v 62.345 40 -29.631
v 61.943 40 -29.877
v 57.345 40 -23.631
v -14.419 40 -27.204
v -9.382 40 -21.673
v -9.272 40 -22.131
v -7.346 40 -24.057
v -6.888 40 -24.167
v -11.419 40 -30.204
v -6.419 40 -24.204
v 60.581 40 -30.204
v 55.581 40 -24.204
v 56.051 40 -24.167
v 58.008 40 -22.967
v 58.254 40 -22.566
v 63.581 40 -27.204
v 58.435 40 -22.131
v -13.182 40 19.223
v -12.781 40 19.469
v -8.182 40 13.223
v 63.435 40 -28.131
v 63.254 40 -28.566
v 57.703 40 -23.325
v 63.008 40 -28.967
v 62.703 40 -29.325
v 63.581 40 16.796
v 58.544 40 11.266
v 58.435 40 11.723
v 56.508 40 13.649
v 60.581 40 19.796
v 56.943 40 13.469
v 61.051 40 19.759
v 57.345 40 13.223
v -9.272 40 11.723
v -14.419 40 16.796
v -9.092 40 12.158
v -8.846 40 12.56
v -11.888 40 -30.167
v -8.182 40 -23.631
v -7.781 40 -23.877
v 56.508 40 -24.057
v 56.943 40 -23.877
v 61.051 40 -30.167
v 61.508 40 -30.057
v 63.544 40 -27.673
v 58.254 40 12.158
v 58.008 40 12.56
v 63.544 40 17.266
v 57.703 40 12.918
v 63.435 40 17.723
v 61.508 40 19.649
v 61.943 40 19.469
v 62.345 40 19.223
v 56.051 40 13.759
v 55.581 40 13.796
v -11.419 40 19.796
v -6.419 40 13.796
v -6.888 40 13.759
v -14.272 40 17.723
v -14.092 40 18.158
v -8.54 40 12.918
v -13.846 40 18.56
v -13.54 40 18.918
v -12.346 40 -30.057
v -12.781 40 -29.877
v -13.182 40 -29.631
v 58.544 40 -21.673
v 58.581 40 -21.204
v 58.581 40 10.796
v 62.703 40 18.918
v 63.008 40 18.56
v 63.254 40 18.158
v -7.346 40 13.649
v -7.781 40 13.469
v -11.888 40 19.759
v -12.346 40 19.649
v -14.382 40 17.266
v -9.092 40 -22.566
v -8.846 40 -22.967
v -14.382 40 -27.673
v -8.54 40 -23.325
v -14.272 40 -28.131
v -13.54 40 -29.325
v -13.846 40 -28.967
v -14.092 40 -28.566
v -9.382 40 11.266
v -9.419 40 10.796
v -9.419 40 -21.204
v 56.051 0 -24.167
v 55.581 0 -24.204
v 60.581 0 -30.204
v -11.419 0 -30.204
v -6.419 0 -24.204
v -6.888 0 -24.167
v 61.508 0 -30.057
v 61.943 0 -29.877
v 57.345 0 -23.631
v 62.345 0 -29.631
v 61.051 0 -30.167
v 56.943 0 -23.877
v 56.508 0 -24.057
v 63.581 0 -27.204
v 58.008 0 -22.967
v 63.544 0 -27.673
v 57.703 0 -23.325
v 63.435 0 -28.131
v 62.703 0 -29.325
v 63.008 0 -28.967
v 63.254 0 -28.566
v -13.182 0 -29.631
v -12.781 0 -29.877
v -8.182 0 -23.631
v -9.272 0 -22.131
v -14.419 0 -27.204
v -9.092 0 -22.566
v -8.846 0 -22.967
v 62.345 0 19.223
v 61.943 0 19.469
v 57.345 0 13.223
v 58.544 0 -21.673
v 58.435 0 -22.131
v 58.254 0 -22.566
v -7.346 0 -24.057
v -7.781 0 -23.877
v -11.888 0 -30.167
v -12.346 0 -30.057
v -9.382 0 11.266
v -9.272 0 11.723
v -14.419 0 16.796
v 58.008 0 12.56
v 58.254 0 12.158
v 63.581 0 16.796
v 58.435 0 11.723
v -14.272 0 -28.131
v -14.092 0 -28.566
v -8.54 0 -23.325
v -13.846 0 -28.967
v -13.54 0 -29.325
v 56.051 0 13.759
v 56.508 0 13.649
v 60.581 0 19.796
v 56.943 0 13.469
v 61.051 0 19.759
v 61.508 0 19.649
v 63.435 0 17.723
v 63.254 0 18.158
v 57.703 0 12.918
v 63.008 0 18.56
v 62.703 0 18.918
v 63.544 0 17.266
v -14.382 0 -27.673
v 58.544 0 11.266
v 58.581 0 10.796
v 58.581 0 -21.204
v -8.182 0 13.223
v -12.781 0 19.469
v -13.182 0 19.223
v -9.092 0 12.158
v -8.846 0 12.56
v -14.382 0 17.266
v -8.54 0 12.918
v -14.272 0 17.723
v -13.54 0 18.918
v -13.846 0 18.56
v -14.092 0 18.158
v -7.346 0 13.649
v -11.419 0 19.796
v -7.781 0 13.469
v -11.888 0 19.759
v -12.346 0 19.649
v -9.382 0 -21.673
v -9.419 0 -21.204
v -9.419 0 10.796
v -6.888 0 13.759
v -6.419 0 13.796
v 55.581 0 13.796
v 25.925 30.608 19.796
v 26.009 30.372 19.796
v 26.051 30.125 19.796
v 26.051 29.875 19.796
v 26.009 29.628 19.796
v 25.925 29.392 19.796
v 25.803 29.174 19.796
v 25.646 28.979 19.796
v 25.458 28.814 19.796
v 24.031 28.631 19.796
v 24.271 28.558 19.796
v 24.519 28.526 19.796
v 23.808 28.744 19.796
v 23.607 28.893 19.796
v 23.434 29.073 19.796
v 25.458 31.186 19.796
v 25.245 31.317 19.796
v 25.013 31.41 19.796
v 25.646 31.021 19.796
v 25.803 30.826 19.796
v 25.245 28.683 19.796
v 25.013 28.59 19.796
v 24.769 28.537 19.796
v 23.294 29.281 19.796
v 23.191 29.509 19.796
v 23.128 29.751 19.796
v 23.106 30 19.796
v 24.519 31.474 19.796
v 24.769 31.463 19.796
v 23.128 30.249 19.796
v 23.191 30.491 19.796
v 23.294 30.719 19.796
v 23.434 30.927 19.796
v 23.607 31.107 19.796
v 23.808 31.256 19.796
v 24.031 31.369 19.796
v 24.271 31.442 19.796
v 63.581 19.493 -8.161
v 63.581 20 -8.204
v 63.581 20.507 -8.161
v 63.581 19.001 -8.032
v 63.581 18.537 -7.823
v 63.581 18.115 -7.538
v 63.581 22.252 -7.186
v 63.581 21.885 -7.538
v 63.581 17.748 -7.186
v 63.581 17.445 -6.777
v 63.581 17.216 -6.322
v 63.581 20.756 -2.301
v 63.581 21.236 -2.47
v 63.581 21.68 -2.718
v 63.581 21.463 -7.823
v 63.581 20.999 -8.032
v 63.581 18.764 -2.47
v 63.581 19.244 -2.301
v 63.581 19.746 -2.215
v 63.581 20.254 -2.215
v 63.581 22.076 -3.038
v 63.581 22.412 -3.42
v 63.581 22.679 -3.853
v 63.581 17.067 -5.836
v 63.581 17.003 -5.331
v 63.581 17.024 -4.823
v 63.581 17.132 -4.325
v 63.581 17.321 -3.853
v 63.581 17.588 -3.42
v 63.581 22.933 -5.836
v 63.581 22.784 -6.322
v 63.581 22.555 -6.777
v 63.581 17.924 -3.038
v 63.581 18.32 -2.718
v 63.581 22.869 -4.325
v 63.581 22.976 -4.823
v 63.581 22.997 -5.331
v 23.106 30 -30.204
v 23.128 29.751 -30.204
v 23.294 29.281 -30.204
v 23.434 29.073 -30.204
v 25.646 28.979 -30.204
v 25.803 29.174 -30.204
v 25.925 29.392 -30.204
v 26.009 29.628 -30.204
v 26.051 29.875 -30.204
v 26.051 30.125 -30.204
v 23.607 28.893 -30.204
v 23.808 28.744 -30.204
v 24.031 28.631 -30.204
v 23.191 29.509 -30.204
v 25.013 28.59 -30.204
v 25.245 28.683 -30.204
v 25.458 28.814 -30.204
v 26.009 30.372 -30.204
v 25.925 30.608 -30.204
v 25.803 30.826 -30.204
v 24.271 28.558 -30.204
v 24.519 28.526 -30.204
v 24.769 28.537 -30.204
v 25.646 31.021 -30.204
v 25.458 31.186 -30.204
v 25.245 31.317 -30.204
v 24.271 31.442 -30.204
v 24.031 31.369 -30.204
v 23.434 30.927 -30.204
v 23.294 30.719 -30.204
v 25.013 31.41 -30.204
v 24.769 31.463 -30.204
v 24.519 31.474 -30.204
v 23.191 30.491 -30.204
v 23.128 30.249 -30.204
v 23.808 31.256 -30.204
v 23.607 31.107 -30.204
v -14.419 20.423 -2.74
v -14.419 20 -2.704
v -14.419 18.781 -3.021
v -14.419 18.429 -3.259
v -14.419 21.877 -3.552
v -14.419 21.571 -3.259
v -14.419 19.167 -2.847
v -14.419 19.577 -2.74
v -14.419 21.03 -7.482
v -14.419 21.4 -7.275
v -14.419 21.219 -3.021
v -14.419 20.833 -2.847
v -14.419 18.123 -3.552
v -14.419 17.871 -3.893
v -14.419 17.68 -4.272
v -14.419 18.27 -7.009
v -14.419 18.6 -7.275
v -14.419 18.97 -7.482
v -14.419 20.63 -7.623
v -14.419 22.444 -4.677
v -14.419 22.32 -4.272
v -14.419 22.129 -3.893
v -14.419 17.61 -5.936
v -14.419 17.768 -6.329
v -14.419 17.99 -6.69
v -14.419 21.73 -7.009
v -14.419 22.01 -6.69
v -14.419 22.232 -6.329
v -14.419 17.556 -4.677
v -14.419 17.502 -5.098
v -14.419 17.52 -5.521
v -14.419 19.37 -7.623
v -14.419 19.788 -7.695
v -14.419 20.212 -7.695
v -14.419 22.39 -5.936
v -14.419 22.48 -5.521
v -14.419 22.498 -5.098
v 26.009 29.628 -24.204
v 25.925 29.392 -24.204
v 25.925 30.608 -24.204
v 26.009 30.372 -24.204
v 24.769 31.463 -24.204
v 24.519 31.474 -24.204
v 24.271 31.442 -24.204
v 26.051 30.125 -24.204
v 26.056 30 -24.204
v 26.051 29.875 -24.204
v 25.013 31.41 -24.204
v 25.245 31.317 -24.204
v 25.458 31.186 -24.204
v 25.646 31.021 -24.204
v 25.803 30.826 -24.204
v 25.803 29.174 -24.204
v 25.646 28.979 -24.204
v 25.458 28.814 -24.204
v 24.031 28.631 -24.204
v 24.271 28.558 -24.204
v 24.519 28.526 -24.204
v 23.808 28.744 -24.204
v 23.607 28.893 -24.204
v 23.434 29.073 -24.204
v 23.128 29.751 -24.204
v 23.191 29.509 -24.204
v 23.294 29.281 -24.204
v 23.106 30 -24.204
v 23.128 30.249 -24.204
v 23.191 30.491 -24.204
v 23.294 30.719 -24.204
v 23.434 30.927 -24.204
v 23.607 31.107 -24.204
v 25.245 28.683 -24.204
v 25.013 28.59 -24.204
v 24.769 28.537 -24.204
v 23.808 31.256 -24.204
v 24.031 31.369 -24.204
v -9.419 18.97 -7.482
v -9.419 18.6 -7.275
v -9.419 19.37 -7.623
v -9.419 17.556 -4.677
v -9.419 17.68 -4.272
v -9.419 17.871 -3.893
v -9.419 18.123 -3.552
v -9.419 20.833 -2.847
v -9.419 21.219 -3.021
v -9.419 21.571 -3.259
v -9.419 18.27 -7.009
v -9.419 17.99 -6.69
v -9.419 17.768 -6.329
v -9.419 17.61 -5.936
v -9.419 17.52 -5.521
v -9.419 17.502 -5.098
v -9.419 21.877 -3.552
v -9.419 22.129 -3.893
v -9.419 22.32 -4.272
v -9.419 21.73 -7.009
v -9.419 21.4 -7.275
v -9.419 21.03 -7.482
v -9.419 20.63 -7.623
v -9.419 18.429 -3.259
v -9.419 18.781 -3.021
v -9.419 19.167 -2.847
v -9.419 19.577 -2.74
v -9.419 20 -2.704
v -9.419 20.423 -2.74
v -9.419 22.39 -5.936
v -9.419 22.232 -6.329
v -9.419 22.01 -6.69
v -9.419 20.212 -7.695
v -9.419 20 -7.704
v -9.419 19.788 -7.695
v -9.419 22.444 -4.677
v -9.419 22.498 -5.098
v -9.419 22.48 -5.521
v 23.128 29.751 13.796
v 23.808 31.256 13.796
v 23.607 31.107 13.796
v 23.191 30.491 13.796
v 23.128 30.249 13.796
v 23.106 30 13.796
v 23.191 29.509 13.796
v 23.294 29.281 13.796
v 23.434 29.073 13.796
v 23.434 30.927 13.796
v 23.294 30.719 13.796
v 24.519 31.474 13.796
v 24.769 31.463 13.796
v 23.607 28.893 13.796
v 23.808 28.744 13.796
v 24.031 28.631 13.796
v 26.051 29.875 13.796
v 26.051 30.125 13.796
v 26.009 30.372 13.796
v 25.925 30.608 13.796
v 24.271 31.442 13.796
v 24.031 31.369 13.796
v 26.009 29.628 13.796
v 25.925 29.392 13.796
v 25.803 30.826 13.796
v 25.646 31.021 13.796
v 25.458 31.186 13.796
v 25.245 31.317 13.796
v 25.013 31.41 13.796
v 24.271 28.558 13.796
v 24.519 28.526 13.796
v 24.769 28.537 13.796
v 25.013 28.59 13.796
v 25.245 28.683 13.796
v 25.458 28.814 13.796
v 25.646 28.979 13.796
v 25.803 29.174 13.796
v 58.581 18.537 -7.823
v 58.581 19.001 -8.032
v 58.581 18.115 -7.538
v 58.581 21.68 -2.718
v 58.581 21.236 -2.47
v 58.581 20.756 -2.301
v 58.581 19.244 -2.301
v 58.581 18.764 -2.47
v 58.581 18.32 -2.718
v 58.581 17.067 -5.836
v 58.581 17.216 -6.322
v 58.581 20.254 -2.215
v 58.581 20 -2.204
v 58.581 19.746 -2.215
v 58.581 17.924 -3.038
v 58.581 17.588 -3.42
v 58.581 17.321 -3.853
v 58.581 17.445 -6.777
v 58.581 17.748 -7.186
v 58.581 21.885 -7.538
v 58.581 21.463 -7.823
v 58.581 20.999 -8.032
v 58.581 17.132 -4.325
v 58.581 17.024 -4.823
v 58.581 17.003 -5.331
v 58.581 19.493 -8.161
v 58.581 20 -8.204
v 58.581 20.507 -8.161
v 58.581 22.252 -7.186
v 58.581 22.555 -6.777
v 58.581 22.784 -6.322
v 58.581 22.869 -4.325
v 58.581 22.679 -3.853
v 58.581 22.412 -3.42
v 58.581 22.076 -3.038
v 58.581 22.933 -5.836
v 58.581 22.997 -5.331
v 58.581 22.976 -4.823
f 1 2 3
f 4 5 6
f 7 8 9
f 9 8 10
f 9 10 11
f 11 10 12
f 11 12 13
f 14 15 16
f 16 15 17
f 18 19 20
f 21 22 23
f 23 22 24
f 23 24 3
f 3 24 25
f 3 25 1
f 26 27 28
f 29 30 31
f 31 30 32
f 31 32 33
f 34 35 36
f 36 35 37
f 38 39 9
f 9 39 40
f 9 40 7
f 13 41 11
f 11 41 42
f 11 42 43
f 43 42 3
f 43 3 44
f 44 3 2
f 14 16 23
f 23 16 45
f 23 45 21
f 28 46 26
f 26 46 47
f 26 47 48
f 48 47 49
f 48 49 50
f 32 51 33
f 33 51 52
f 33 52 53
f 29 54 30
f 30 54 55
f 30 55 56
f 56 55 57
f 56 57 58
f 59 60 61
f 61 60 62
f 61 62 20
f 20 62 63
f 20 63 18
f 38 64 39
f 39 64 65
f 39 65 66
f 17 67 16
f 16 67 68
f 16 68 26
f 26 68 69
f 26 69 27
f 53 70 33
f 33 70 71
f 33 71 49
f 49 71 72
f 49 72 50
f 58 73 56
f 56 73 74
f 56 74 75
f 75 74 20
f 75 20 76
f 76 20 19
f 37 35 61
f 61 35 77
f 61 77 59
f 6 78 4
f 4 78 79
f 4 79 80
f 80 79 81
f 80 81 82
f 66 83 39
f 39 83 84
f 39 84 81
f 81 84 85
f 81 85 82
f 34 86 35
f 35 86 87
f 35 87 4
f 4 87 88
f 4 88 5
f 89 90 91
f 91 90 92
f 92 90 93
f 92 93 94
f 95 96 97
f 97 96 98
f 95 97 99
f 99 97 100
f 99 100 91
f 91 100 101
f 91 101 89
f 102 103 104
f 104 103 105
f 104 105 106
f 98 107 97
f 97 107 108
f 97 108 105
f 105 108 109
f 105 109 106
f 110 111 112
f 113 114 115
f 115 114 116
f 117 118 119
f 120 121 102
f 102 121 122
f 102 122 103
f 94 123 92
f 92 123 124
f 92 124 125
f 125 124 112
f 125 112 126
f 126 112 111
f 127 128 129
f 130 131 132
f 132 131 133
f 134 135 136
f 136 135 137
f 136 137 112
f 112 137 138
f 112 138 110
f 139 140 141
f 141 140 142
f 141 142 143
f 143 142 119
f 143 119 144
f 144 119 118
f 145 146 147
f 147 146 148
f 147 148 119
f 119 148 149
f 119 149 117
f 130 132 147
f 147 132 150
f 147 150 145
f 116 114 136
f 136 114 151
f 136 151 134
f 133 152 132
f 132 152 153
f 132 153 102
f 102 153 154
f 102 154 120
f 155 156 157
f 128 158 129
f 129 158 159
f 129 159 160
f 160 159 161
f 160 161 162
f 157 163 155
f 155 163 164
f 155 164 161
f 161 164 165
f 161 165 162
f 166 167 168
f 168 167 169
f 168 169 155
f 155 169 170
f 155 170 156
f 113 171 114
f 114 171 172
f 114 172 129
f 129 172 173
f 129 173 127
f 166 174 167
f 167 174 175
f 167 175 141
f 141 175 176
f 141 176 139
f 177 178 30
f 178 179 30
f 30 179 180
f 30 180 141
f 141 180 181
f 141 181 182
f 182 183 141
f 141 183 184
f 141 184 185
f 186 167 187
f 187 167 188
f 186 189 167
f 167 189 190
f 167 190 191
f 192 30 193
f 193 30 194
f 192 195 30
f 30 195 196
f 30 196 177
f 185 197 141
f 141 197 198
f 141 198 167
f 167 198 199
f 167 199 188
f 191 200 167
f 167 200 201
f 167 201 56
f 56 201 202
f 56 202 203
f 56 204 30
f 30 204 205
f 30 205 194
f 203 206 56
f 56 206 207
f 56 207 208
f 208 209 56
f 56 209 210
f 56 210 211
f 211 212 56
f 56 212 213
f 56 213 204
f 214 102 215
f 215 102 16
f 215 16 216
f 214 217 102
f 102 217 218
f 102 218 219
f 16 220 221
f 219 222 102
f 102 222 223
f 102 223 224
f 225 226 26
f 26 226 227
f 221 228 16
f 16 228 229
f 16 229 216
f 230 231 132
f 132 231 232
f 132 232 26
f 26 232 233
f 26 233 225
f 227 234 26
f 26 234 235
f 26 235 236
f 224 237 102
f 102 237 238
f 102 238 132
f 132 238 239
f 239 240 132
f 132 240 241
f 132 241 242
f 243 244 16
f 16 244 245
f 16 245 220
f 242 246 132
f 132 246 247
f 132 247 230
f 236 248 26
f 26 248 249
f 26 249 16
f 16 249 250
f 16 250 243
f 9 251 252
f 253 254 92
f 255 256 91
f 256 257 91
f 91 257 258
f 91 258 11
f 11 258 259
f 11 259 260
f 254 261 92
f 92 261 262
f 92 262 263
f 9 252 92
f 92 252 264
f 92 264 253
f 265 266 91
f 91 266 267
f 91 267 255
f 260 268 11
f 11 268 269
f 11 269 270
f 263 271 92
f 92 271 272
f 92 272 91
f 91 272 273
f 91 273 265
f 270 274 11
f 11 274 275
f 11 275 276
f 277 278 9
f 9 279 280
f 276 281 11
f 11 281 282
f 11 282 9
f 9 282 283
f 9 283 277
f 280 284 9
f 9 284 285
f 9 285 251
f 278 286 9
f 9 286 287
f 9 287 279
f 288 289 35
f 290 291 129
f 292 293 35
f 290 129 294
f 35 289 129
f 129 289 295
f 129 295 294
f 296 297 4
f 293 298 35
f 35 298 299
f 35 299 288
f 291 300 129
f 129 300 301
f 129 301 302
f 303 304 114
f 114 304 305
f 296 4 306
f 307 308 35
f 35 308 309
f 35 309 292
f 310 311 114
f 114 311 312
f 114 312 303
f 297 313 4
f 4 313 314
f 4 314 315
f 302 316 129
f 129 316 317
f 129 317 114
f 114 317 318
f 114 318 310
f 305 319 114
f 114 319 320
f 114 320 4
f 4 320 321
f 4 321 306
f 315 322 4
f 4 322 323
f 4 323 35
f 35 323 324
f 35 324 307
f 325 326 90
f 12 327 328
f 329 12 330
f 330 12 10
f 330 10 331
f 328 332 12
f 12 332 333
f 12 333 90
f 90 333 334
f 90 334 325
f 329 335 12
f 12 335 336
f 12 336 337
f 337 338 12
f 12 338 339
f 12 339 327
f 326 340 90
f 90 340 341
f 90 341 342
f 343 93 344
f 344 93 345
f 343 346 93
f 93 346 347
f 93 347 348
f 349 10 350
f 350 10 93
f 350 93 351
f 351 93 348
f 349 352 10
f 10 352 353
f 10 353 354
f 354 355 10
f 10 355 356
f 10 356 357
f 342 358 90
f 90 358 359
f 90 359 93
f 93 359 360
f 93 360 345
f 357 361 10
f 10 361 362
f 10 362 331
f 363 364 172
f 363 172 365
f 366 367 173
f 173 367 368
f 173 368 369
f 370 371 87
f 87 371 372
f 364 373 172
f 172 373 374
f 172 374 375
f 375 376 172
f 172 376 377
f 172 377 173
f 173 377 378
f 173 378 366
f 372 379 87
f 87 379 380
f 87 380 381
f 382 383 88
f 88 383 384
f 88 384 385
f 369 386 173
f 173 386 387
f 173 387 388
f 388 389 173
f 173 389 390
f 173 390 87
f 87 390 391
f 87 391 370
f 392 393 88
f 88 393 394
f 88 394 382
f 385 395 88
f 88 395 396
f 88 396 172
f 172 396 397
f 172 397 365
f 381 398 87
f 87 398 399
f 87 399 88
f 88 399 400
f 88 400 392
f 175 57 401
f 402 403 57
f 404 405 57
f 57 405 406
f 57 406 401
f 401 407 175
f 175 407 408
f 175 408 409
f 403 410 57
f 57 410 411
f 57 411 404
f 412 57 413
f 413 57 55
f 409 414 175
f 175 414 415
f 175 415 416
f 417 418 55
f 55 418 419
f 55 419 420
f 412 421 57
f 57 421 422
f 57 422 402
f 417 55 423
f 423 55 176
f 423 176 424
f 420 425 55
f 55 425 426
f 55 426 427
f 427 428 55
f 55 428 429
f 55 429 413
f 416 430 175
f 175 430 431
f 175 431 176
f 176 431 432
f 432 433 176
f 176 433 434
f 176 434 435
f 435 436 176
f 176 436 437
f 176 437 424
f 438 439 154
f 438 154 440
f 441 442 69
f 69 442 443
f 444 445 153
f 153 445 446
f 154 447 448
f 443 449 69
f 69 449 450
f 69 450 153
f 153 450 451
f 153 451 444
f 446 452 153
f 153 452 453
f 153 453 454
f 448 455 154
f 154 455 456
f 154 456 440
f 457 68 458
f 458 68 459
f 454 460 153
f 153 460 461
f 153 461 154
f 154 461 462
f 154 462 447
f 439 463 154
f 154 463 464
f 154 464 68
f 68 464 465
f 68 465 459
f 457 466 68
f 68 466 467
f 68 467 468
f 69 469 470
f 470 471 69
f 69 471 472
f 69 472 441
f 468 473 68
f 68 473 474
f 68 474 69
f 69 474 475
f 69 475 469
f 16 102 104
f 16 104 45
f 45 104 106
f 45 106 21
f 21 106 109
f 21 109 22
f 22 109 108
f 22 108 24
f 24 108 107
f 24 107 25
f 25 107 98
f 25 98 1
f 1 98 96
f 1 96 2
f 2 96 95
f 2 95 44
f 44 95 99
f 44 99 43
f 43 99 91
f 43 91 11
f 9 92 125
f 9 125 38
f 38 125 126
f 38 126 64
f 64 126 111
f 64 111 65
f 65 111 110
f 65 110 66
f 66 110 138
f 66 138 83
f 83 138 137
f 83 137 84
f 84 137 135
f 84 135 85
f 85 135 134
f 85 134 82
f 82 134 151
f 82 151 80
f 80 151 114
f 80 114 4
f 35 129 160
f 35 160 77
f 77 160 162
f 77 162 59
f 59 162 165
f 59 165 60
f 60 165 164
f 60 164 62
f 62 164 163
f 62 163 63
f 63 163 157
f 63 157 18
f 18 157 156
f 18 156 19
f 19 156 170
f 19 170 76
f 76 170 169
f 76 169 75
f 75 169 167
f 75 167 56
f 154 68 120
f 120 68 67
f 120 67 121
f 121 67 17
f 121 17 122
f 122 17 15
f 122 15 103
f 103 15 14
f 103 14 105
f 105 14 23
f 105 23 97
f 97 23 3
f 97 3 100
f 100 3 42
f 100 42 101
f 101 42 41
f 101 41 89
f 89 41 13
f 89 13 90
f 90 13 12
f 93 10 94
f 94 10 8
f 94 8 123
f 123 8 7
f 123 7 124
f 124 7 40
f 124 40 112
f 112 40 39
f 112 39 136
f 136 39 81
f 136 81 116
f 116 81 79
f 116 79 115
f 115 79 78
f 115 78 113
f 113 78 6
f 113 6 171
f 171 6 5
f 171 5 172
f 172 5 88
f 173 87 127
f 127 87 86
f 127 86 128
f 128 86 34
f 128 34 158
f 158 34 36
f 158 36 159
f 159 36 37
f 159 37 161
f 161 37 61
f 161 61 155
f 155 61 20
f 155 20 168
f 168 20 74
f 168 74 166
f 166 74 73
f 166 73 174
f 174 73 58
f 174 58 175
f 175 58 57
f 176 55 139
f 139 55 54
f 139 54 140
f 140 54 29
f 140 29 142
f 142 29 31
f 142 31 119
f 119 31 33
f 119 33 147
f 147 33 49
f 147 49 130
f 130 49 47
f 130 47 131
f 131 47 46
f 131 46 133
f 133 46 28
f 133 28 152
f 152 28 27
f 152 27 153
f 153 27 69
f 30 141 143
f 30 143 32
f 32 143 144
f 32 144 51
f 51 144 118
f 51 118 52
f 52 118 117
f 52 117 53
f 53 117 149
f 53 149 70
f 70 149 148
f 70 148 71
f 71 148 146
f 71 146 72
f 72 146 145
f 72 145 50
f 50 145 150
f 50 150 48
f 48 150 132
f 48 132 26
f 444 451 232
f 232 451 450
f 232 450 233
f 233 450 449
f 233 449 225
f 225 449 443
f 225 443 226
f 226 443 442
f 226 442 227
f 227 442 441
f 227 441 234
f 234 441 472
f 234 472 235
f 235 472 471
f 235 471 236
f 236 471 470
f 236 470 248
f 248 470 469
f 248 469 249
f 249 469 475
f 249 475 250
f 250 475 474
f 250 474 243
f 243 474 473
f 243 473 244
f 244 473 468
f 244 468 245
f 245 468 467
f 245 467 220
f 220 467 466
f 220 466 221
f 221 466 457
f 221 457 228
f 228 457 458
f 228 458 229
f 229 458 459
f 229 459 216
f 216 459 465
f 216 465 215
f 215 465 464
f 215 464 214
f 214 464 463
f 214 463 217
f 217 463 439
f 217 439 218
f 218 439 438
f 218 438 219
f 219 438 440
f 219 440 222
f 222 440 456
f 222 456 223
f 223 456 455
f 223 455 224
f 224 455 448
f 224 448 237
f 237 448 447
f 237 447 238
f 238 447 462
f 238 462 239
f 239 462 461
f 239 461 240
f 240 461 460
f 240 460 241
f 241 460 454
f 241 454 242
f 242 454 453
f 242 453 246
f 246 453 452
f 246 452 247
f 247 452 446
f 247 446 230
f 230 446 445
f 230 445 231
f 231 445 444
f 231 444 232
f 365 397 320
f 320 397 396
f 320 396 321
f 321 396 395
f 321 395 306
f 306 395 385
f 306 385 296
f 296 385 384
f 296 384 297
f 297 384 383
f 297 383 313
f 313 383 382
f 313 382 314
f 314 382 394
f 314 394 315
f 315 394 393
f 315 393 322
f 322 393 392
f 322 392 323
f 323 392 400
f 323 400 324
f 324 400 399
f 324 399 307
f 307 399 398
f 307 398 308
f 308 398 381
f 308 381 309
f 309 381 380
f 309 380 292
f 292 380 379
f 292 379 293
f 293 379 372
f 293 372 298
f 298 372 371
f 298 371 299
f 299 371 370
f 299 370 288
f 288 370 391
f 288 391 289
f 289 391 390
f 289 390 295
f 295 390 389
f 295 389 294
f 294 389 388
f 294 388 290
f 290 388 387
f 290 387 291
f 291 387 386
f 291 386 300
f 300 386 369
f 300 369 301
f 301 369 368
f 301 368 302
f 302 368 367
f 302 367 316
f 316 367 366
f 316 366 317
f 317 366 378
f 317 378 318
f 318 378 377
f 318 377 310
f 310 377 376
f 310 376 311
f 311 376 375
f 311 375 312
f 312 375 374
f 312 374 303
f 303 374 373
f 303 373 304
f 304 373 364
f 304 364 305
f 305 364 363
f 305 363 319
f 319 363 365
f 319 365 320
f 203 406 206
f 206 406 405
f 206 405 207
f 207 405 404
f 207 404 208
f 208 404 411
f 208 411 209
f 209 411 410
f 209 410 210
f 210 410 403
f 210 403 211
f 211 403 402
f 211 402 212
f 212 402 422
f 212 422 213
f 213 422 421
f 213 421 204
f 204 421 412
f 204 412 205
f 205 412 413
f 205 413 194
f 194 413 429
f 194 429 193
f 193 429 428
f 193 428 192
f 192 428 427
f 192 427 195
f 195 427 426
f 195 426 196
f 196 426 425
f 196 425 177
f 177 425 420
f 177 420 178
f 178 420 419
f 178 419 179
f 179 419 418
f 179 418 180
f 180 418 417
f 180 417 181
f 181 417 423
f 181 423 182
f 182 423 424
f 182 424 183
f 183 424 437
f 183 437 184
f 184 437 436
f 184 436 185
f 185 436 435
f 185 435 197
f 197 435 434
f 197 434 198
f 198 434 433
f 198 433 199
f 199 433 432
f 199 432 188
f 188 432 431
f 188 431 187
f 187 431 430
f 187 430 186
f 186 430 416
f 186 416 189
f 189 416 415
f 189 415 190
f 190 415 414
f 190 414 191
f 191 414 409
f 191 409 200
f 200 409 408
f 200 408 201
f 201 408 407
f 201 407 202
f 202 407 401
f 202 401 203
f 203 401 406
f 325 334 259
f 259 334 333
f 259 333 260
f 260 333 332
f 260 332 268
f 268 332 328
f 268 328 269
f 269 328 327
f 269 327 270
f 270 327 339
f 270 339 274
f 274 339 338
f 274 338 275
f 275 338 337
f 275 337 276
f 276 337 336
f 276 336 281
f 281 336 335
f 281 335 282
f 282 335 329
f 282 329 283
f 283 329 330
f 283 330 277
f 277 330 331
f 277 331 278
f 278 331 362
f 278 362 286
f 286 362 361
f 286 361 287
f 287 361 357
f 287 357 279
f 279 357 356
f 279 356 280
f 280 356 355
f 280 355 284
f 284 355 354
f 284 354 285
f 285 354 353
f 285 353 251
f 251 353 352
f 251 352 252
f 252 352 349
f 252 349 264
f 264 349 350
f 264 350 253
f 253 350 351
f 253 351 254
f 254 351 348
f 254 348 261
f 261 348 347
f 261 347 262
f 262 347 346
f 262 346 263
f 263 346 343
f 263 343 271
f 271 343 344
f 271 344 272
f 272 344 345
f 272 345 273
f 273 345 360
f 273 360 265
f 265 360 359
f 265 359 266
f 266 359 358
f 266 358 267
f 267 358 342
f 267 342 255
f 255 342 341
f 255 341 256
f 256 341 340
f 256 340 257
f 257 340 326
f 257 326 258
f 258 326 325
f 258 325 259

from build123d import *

# Parameters (mm, degrees)
SKETCH1_W           = 78
SKETCH1_H           = 50
SKETCH1_W_2         = 68
SKETCH1_H_2         = 38
BOSS_EXTRUDE1_DEPTH = 40
FILLET1_R           = 3
SKETCH2_R           = 3
CUT_EXTRUDE1_DEPTH  = 40
SKETCH3_R           = 2.5
CUT_EXTRUDE2_DEPTH  = 40
SKETCH4_R           = 1.475
CUT_EXTRUDE3_DEPTH  = 50


with BuildPart() as part:
    # Sketch1 → Boss-Extrude1 (new body)
    with BuildSketch(Plane(origin=(0, 0, 0), x_dir=(1, 0, 0), z_dir=(0, 1, 0))):
        with Locations((24.581369455, 5.203792641)):
            Rectangle(SKETCH1_W, SKETCH1_H)
        with Locations((24.581369455, 5.203792641)):
            Rectangle(SKETCH1_W_2, SKETCH1_H_2, mode=Mode.SUBTRACT)
    extrude(amount=BOSS_EXTRUDE1_DEPTH)

    # Fillet1
    fillet1_edges = [part.edges().sort_by_distance(p)[0] for p in [
        (58.581369455, 20, -24.203792641),
        (-9.418630545, 20, -24.203792641),
        (-9.418630545, 20, 13.796207359),
        (58.581369455, 20, 13.796207359),
        (-14.418630545, 20, 19.796207359),
        (-14.418630545, 20, -30.203792641),
        (63.581369455, 20, -30.203792641),
        (63.581369455, 20, 19.796207359),
    ]]
    fillet(fillet1_edges, radius=FILLET1_R)

    # Sketch2 → Cut-Extrude1 (cut)
    with BuildSketch(Plane(origin=(63.581369455, 0, 0), x_dir=(0, 0, -1), z_dir=(1, 0, 0))):
        with Locations((5.203792641, 20)):
            Circle(SKETCH2_R)
    extrude(amount=-CUT_EXTRUDE1_DEPTH, mode=Mode.SUBTRACT)

    # Sketch3 → Cut-Extrude2 (cut)
    with BuildSketch(Plane.ZY.offset(14.418630545)):
        with Locations((-5.203792641, 20)):
            Circle(SKETCH3_R)
    extrude(amount=-CUT_EXTRUDE2_DEPTH, mode=Mode.SUBTRACT)

    # Sketch4 → Cut-Extrude3 (cut)
    with BuildSketch(Plane(origin=(0, 0, -30.203792641), x_dir=(-1, 0, 0), z_dir=(0, 0, -1))):
        with Locations((-24.581369455, 30)):
            Circle(SKETCH4_R)
    extrude(amount=-CUT_EXTRUDE3_DEPTH, mode=Mode.SUBTRACT)


solid = part.part
